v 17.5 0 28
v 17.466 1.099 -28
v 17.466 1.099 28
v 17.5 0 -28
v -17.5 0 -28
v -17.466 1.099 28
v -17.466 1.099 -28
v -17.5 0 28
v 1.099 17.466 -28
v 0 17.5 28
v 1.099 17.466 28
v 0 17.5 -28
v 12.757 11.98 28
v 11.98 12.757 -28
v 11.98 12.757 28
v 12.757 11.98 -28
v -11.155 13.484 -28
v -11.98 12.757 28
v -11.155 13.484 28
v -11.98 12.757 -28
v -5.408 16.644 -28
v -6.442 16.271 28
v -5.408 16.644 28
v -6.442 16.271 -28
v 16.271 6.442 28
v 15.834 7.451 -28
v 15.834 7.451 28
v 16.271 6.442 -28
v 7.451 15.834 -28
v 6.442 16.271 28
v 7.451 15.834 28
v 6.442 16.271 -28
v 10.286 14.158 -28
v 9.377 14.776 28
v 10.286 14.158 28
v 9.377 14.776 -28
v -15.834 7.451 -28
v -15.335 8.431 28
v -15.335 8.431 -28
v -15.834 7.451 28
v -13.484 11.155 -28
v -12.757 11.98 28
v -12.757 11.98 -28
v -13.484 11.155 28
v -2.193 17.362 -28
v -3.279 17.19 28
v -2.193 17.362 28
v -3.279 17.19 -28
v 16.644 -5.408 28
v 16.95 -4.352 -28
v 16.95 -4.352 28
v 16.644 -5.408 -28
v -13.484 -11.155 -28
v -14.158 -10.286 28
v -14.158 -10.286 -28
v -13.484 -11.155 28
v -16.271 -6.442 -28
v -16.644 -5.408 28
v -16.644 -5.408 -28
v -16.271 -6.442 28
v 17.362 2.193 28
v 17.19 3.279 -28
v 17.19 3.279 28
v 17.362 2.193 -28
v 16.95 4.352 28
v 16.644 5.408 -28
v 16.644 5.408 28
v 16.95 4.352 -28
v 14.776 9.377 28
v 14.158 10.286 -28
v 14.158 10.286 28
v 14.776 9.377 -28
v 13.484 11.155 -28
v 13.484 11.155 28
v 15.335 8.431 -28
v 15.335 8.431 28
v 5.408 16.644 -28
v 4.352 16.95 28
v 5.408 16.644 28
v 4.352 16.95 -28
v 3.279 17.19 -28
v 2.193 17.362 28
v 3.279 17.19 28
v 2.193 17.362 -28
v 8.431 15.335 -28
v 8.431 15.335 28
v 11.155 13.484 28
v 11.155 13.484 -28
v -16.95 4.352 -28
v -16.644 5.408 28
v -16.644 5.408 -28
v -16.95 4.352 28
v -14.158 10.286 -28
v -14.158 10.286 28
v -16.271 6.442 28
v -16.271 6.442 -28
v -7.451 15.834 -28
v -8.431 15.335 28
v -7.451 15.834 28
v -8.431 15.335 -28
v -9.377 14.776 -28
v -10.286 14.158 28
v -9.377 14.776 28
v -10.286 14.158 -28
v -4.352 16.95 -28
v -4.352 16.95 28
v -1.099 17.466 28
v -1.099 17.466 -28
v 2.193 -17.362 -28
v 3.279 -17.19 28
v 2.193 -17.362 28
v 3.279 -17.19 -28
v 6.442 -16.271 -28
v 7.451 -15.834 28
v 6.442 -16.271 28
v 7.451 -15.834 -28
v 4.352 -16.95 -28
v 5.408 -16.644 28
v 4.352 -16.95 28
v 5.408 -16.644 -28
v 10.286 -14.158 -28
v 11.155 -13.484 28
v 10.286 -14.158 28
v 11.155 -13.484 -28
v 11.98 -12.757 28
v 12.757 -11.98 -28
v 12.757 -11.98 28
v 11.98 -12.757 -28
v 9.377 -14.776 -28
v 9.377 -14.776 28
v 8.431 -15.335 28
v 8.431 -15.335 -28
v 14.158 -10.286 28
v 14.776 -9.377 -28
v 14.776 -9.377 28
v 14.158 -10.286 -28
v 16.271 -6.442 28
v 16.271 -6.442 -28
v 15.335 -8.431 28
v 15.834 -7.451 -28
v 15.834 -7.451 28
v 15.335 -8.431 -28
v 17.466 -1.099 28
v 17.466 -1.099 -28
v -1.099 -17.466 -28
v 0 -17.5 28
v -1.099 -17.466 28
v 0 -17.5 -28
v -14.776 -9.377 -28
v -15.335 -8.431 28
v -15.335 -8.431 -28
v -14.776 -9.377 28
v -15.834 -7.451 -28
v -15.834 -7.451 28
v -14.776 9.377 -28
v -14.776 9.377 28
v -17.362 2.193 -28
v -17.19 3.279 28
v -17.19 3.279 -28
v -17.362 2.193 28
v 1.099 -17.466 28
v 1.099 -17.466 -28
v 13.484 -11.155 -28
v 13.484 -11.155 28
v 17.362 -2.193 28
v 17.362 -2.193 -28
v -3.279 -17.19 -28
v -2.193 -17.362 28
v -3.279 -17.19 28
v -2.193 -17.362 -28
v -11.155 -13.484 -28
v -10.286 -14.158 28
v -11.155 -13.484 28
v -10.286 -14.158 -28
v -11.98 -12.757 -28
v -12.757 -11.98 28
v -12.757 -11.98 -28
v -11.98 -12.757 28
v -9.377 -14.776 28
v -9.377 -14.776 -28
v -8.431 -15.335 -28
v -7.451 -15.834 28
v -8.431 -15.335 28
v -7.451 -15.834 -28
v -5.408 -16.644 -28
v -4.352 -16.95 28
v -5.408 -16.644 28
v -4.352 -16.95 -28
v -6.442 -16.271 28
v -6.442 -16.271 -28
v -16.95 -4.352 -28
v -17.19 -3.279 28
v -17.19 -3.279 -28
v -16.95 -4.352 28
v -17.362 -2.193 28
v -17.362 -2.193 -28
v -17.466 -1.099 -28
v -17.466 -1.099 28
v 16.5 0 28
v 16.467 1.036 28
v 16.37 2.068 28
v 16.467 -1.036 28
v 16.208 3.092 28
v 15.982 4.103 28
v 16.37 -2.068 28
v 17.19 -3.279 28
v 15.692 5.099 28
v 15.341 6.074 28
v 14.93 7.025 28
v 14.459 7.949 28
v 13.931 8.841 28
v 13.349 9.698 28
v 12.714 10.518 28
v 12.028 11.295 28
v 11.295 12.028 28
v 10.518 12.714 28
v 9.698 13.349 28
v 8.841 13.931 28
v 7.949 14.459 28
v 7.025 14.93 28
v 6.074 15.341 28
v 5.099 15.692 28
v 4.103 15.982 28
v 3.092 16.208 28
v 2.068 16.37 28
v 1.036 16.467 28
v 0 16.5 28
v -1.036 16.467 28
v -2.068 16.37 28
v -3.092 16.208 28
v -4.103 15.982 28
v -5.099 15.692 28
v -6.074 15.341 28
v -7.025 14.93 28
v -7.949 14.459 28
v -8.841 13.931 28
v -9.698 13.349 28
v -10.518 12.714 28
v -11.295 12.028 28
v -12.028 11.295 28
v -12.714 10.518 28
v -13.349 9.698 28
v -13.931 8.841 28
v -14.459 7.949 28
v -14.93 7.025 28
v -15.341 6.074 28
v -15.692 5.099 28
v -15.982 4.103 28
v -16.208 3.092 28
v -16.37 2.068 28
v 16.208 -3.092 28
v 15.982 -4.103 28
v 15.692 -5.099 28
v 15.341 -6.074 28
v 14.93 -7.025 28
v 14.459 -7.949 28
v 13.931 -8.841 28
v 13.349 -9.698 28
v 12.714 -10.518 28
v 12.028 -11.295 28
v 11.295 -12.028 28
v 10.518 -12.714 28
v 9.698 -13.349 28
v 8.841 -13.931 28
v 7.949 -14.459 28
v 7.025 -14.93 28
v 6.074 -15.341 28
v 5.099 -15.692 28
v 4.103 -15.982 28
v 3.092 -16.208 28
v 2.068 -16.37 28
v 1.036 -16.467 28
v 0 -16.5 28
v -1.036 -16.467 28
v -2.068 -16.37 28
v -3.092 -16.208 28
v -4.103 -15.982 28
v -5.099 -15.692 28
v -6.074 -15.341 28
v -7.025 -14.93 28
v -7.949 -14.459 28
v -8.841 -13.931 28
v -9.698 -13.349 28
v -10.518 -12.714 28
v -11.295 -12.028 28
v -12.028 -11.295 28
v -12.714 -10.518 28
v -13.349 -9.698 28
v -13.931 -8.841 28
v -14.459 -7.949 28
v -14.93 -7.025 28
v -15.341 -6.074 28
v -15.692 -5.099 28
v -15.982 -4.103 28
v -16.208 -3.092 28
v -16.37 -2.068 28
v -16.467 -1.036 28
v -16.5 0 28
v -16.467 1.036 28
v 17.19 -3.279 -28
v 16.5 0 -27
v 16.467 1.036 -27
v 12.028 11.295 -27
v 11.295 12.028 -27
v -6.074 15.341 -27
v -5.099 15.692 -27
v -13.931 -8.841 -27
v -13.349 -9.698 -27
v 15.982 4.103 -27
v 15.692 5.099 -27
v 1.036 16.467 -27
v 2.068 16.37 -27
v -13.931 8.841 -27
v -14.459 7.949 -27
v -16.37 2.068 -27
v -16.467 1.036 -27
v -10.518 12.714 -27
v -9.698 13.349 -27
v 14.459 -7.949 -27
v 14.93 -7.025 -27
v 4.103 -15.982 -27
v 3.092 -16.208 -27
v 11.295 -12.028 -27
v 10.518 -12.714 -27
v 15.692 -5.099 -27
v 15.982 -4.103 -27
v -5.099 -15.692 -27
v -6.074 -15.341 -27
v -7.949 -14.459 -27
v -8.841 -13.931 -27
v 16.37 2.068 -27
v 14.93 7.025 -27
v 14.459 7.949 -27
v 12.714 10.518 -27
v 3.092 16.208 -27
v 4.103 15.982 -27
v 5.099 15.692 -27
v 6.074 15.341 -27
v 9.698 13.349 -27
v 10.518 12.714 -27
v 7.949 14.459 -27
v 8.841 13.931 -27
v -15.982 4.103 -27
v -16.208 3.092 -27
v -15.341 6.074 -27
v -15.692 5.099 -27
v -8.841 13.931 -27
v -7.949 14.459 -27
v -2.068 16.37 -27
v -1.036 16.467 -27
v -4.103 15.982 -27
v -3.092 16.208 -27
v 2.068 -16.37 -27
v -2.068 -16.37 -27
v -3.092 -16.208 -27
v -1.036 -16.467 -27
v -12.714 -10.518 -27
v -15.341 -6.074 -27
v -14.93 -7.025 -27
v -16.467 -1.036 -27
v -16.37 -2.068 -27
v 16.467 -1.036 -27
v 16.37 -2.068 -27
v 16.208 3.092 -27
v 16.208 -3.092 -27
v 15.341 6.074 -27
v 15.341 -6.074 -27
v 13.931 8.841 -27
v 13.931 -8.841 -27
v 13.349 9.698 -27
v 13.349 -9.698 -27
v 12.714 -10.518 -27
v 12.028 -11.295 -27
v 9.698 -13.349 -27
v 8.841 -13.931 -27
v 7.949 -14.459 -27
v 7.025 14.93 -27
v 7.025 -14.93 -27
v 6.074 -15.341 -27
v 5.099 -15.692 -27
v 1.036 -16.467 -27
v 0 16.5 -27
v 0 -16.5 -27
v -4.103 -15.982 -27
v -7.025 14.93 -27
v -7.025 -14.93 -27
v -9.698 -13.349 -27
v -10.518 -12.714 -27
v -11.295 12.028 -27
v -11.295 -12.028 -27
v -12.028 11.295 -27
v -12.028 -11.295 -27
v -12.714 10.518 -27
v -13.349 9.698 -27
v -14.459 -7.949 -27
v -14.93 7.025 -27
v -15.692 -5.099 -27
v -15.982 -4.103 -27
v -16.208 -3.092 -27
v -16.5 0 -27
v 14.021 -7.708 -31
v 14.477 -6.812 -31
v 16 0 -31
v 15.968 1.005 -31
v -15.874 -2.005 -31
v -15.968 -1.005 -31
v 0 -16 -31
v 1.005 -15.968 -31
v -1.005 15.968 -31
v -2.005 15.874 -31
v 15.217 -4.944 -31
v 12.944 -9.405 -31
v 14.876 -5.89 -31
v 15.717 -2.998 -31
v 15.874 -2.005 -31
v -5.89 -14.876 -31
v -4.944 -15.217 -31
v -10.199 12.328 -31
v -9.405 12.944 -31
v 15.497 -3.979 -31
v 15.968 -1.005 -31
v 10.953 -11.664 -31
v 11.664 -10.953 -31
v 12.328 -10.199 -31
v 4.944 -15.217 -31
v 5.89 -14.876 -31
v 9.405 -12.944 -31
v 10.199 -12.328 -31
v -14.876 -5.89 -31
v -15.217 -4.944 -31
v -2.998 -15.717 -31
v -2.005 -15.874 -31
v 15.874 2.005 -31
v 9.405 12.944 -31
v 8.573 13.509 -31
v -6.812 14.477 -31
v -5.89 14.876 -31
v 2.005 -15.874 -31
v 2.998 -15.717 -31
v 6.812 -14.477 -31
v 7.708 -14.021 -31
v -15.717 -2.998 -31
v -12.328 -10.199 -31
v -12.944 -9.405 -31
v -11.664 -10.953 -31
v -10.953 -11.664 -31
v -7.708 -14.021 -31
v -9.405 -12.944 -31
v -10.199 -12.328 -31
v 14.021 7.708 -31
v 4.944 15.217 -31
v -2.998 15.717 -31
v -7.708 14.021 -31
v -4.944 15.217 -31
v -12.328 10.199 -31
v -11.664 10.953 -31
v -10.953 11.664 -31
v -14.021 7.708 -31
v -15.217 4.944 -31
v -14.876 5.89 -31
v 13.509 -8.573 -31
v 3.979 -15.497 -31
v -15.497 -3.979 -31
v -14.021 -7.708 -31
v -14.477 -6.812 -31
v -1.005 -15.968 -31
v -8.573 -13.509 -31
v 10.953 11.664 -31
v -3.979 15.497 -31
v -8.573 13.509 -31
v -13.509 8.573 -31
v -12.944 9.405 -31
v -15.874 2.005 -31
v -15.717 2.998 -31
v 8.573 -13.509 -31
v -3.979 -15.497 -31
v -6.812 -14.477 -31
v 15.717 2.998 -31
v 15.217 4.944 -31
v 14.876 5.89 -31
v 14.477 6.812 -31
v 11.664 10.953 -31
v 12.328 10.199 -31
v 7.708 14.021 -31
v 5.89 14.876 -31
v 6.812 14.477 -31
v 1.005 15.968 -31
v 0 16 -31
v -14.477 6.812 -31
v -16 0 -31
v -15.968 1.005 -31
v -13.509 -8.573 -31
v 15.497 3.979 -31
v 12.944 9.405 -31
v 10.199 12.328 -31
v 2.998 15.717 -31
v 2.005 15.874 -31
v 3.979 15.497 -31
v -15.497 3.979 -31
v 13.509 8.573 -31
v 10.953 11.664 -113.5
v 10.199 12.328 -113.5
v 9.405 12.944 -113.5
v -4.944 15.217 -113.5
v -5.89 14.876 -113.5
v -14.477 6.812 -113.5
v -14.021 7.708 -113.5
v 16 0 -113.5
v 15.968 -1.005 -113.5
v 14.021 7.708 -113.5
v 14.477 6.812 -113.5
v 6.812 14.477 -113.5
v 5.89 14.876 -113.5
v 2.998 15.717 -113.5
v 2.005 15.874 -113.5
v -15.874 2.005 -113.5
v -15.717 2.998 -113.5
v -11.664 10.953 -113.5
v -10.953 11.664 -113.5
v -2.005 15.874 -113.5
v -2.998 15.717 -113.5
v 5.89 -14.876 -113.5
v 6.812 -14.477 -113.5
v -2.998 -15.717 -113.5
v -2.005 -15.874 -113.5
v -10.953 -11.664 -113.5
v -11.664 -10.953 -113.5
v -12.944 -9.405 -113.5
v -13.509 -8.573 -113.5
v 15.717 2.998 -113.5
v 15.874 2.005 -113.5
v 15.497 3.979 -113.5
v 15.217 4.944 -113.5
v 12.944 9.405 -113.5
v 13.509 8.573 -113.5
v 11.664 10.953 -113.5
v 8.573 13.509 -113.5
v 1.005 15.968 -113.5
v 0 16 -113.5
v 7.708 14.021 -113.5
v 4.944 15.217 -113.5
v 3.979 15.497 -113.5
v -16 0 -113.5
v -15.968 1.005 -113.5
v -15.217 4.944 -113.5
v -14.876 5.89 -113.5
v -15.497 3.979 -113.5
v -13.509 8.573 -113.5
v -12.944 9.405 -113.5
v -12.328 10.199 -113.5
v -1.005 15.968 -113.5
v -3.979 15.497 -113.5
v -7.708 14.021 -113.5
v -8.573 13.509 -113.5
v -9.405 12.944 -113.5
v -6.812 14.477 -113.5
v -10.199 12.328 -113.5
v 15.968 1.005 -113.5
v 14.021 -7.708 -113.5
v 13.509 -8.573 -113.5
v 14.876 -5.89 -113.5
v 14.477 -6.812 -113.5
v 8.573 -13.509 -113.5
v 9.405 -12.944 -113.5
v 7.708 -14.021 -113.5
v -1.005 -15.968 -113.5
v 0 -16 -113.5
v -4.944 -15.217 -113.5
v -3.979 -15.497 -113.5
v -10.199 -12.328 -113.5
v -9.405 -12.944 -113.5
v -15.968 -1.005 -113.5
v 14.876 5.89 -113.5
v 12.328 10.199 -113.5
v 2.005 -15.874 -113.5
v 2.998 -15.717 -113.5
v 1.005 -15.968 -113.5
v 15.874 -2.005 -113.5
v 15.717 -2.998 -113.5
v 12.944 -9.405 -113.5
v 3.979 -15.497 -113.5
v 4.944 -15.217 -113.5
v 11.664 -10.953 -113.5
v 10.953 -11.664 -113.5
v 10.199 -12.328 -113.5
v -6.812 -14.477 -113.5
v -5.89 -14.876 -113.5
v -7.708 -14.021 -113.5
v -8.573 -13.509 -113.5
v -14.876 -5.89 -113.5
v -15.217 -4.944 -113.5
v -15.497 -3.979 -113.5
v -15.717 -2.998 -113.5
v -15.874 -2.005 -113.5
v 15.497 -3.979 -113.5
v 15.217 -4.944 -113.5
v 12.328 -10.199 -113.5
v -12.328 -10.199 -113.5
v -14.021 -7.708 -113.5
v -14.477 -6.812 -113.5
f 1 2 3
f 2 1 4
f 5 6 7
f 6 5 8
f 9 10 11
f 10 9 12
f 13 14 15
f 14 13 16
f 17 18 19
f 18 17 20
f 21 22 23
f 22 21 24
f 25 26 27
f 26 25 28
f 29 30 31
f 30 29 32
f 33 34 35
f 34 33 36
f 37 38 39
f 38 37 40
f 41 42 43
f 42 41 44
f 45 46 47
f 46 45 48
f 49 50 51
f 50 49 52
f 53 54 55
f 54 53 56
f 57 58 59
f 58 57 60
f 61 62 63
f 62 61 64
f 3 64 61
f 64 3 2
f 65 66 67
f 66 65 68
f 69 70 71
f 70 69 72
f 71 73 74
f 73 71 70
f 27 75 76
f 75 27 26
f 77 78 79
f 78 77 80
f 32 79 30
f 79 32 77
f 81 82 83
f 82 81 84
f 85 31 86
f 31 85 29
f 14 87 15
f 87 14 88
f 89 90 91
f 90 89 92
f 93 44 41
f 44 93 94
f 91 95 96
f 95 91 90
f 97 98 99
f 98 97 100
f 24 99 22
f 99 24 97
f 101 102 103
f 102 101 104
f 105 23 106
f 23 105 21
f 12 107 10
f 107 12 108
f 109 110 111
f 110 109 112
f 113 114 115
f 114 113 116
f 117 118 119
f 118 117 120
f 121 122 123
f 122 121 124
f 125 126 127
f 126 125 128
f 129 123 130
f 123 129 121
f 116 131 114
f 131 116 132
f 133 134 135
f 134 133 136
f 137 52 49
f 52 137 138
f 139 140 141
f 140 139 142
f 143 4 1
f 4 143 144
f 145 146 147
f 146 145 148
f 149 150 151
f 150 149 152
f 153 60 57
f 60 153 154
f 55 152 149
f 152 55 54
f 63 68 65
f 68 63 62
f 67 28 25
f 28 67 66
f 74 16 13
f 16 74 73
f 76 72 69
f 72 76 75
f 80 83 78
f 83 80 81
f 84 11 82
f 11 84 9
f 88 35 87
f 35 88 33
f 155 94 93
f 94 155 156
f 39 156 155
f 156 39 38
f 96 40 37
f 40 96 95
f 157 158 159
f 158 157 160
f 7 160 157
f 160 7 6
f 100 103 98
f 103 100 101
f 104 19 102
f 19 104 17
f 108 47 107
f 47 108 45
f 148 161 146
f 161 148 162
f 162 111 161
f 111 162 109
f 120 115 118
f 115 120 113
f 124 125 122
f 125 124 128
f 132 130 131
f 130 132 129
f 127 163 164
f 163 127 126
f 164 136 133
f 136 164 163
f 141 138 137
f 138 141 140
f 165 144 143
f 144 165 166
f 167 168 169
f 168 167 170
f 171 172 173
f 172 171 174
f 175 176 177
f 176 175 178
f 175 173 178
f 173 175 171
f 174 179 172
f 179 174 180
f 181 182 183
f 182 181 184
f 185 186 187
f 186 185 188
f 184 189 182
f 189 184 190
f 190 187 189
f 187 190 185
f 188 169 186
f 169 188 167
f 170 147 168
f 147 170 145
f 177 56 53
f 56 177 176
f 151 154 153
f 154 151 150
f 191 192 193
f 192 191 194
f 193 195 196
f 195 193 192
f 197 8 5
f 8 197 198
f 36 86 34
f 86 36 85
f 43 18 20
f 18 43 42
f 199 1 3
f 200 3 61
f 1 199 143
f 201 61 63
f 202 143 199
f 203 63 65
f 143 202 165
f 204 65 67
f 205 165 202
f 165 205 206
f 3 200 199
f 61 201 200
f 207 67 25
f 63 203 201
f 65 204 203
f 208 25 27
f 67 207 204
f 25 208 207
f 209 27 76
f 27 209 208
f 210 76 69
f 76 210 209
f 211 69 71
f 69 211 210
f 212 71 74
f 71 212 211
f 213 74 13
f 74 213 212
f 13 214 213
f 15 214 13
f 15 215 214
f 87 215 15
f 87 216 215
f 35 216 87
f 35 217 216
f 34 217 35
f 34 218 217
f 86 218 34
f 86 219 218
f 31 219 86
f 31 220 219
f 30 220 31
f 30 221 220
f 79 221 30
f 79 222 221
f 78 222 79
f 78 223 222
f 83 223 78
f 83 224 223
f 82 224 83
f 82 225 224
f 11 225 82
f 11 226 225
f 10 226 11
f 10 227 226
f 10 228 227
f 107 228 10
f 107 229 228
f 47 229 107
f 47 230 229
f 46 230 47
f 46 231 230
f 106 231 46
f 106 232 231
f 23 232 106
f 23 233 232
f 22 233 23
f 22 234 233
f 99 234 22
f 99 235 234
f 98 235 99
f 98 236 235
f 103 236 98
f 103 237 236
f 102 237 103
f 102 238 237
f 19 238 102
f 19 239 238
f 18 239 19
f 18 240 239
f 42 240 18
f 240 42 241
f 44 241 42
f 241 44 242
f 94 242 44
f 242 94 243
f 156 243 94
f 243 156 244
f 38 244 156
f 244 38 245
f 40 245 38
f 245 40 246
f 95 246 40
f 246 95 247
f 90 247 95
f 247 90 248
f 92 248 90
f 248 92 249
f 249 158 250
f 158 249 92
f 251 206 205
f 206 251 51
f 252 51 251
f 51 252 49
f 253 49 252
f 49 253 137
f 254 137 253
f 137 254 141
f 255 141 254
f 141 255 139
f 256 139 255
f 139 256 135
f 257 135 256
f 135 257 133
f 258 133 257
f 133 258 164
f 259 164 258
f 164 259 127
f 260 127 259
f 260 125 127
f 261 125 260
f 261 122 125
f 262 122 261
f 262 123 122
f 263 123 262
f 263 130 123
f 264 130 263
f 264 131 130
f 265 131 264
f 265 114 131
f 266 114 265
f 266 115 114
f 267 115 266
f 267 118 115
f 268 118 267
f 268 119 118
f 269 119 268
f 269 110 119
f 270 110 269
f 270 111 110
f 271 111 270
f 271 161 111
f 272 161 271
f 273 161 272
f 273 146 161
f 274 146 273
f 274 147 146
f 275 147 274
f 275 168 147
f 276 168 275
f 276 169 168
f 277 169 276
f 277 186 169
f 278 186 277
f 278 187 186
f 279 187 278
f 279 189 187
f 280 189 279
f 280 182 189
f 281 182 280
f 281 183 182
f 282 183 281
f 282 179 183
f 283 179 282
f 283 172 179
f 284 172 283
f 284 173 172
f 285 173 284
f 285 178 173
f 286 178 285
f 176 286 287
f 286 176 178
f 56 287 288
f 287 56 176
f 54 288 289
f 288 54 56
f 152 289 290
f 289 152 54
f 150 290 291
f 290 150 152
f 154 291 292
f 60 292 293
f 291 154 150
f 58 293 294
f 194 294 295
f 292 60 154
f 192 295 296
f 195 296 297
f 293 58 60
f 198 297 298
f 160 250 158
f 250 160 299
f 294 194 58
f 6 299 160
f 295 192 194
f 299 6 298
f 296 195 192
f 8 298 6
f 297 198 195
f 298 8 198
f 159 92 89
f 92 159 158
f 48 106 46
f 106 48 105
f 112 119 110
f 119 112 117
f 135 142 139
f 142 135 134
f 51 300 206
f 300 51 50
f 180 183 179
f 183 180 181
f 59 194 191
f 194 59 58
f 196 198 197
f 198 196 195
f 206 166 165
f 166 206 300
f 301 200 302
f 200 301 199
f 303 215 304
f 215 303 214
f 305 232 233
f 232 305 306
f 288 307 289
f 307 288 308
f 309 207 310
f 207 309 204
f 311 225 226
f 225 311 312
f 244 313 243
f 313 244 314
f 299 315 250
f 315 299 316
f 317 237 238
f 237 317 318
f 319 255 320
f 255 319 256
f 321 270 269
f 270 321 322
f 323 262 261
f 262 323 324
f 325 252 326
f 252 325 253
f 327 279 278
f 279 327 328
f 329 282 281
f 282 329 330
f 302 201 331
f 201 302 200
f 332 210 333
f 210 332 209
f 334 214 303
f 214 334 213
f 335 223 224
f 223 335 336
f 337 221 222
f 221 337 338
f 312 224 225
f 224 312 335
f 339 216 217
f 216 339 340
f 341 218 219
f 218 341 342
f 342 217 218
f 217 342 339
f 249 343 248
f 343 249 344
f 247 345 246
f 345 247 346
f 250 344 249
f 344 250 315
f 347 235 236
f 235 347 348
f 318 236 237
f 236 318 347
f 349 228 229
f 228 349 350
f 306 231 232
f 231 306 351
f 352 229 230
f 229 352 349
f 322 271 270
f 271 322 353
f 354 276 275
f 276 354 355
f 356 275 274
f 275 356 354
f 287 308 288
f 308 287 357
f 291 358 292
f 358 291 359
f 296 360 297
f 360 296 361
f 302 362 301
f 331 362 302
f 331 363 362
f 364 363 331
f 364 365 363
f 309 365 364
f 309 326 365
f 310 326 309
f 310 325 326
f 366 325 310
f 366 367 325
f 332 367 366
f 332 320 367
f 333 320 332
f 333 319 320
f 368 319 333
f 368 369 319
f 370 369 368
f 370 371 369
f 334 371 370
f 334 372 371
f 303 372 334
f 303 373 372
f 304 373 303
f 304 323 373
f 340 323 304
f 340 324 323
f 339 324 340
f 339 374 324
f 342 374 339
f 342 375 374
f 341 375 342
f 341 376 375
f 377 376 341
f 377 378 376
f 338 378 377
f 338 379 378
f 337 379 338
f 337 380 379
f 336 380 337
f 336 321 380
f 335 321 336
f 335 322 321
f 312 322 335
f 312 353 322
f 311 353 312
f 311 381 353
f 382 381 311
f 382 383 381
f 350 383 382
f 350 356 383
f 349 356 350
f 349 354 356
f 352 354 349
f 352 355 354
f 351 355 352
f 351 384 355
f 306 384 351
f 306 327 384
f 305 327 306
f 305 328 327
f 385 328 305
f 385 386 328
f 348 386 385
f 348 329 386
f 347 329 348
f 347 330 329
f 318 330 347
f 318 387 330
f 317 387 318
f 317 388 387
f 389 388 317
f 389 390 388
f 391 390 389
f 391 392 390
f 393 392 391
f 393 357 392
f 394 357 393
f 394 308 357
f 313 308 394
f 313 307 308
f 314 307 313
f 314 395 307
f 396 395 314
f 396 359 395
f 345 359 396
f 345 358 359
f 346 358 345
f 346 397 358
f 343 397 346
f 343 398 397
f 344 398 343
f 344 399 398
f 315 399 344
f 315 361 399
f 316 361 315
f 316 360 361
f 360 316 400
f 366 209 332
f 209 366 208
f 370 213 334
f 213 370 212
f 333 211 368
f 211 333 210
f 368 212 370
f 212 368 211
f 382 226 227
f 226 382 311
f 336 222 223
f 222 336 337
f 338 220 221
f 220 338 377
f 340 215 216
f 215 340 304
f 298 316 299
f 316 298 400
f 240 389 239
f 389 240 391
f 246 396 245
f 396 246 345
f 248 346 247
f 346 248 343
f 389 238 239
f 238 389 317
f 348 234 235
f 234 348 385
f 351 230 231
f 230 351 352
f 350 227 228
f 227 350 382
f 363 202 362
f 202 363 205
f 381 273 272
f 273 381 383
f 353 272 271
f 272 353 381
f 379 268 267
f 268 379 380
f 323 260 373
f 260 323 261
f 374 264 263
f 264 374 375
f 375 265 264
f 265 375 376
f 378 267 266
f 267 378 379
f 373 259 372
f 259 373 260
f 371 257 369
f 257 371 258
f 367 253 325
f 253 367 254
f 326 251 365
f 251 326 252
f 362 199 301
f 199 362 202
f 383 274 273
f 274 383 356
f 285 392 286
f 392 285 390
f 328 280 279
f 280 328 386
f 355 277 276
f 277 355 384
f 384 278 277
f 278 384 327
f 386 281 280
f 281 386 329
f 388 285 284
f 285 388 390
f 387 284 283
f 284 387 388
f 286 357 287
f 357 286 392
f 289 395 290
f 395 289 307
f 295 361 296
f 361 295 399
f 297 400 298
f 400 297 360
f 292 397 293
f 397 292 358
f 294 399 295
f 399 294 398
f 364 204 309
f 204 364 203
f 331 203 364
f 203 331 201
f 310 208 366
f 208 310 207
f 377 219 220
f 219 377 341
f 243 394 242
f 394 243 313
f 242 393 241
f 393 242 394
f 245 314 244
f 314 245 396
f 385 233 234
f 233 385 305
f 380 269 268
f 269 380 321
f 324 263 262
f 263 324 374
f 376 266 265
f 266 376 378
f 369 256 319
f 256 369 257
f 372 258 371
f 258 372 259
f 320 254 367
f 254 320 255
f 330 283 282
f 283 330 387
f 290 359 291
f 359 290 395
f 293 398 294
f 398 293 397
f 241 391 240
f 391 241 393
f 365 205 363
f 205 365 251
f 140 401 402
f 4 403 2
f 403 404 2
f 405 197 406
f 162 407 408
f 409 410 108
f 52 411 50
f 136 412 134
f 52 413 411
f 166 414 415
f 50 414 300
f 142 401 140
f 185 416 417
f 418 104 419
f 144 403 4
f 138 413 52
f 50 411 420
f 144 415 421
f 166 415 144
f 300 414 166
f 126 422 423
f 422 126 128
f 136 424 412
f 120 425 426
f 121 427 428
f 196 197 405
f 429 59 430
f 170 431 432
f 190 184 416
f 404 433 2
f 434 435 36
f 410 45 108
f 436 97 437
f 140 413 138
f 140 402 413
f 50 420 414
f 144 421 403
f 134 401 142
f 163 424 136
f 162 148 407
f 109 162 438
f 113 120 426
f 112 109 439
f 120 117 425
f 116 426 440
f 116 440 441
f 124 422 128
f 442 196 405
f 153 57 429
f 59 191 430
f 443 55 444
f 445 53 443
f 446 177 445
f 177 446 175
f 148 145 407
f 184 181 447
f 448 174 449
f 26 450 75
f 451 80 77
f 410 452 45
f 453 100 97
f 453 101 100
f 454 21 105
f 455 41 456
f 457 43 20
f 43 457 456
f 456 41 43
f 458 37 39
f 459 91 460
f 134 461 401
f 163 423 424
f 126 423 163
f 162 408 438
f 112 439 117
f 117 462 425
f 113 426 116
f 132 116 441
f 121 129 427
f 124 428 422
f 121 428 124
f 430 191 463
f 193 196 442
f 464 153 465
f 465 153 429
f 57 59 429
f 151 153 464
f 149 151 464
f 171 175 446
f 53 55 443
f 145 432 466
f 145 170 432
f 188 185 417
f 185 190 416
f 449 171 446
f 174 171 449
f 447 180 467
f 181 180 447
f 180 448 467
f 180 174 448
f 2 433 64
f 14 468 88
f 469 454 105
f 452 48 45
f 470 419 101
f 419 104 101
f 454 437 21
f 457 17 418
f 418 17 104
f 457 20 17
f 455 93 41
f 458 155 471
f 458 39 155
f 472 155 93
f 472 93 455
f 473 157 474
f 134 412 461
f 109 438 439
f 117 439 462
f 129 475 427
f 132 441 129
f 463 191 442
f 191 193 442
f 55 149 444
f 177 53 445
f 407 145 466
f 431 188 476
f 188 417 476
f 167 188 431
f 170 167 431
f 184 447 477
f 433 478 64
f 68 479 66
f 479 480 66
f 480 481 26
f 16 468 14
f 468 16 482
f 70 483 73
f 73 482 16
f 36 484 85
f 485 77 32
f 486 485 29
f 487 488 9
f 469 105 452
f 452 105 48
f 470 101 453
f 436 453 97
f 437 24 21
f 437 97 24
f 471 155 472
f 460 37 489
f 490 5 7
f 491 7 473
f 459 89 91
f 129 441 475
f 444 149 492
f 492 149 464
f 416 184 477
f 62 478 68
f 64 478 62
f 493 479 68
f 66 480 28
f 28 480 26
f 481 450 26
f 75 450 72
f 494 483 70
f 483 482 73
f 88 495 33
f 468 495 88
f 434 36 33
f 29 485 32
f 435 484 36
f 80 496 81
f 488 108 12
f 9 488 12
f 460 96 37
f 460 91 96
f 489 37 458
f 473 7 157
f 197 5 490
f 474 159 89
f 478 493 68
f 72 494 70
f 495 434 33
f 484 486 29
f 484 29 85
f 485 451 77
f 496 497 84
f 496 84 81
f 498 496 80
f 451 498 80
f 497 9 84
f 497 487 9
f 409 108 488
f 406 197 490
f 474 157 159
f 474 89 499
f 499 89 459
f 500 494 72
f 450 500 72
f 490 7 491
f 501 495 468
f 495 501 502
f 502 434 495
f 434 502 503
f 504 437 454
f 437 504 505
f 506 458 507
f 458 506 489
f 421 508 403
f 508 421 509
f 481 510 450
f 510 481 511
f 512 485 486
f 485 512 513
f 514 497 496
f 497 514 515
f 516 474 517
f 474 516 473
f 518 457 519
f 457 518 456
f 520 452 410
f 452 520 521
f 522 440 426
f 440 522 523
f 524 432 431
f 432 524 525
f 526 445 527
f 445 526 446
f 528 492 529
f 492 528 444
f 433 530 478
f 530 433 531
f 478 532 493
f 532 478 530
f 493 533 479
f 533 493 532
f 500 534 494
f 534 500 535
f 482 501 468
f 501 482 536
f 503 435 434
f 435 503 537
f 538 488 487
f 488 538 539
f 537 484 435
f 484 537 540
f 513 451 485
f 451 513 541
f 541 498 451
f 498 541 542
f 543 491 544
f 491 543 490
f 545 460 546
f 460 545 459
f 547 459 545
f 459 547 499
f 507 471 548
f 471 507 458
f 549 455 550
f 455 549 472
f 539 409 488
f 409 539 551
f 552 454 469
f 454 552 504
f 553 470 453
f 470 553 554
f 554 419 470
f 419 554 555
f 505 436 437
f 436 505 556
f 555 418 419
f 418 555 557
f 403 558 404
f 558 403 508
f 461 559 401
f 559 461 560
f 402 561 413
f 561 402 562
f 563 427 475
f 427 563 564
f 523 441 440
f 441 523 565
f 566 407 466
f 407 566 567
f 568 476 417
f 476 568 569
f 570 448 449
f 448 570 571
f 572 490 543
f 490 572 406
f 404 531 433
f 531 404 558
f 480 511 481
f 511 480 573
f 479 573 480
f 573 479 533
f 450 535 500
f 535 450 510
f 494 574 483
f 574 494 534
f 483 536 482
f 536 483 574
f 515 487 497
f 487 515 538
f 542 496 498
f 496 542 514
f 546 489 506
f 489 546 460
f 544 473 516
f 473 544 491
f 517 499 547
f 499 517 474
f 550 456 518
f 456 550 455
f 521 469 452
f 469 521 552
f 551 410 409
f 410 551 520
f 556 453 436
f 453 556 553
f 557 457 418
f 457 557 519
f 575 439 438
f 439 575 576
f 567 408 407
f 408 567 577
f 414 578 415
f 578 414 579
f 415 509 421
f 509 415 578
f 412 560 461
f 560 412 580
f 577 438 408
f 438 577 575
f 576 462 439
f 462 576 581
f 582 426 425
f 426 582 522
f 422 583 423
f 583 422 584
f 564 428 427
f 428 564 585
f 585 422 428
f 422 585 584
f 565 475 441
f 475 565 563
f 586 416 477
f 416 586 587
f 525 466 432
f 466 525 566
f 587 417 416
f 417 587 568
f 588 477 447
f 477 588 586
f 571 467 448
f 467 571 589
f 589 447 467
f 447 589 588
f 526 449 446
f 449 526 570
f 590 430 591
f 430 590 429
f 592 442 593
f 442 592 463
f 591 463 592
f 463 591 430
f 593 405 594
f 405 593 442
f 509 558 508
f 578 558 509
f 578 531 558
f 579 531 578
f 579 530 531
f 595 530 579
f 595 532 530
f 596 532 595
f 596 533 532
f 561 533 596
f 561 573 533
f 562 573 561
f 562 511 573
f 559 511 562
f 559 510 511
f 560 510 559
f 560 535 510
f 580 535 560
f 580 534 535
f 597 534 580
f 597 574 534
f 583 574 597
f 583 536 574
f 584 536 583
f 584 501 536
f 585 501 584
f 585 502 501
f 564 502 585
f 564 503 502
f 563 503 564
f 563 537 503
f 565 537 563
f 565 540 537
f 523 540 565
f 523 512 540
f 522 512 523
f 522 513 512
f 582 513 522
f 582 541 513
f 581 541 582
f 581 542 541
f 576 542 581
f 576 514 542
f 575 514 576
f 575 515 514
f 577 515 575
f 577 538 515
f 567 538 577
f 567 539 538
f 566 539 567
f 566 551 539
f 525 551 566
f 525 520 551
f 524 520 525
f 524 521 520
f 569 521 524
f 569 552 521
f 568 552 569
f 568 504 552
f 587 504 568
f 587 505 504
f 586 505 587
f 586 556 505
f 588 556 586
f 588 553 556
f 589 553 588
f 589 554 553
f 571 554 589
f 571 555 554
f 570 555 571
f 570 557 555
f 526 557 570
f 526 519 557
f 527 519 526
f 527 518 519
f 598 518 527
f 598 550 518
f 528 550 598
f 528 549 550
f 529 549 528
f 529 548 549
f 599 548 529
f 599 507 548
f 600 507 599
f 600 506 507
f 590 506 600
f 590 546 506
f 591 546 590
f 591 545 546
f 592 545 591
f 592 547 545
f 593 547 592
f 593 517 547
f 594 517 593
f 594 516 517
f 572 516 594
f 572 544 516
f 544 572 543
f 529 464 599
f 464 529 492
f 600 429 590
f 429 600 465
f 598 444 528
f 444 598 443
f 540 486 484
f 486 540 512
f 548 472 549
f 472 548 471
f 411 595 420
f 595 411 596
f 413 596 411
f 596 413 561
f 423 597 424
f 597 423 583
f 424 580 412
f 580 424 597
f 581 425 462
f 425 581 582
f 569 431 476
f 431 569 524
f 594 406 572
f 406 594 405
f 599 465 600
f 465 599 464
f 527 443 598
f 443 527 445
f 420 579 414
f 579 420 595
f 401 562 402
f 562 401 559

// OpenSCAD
//rotate([180,0,0])
union() {
    difference() {
        translate([0,0,0])
            cylinder(r=17.5, h=56,$fn=100,center=true);
        translate([0,0,1])
            cylinder(r=16.5, h=56,$fn=100,center=true);
    }
    translate([0,0,-29.5])
        cylinder(r1=16,r2=17.5,h=3,$fn=100,center=true);
    translate([0,0,-72])
        cylinder(r=16,h=83,$fn=100,center=true);
}
